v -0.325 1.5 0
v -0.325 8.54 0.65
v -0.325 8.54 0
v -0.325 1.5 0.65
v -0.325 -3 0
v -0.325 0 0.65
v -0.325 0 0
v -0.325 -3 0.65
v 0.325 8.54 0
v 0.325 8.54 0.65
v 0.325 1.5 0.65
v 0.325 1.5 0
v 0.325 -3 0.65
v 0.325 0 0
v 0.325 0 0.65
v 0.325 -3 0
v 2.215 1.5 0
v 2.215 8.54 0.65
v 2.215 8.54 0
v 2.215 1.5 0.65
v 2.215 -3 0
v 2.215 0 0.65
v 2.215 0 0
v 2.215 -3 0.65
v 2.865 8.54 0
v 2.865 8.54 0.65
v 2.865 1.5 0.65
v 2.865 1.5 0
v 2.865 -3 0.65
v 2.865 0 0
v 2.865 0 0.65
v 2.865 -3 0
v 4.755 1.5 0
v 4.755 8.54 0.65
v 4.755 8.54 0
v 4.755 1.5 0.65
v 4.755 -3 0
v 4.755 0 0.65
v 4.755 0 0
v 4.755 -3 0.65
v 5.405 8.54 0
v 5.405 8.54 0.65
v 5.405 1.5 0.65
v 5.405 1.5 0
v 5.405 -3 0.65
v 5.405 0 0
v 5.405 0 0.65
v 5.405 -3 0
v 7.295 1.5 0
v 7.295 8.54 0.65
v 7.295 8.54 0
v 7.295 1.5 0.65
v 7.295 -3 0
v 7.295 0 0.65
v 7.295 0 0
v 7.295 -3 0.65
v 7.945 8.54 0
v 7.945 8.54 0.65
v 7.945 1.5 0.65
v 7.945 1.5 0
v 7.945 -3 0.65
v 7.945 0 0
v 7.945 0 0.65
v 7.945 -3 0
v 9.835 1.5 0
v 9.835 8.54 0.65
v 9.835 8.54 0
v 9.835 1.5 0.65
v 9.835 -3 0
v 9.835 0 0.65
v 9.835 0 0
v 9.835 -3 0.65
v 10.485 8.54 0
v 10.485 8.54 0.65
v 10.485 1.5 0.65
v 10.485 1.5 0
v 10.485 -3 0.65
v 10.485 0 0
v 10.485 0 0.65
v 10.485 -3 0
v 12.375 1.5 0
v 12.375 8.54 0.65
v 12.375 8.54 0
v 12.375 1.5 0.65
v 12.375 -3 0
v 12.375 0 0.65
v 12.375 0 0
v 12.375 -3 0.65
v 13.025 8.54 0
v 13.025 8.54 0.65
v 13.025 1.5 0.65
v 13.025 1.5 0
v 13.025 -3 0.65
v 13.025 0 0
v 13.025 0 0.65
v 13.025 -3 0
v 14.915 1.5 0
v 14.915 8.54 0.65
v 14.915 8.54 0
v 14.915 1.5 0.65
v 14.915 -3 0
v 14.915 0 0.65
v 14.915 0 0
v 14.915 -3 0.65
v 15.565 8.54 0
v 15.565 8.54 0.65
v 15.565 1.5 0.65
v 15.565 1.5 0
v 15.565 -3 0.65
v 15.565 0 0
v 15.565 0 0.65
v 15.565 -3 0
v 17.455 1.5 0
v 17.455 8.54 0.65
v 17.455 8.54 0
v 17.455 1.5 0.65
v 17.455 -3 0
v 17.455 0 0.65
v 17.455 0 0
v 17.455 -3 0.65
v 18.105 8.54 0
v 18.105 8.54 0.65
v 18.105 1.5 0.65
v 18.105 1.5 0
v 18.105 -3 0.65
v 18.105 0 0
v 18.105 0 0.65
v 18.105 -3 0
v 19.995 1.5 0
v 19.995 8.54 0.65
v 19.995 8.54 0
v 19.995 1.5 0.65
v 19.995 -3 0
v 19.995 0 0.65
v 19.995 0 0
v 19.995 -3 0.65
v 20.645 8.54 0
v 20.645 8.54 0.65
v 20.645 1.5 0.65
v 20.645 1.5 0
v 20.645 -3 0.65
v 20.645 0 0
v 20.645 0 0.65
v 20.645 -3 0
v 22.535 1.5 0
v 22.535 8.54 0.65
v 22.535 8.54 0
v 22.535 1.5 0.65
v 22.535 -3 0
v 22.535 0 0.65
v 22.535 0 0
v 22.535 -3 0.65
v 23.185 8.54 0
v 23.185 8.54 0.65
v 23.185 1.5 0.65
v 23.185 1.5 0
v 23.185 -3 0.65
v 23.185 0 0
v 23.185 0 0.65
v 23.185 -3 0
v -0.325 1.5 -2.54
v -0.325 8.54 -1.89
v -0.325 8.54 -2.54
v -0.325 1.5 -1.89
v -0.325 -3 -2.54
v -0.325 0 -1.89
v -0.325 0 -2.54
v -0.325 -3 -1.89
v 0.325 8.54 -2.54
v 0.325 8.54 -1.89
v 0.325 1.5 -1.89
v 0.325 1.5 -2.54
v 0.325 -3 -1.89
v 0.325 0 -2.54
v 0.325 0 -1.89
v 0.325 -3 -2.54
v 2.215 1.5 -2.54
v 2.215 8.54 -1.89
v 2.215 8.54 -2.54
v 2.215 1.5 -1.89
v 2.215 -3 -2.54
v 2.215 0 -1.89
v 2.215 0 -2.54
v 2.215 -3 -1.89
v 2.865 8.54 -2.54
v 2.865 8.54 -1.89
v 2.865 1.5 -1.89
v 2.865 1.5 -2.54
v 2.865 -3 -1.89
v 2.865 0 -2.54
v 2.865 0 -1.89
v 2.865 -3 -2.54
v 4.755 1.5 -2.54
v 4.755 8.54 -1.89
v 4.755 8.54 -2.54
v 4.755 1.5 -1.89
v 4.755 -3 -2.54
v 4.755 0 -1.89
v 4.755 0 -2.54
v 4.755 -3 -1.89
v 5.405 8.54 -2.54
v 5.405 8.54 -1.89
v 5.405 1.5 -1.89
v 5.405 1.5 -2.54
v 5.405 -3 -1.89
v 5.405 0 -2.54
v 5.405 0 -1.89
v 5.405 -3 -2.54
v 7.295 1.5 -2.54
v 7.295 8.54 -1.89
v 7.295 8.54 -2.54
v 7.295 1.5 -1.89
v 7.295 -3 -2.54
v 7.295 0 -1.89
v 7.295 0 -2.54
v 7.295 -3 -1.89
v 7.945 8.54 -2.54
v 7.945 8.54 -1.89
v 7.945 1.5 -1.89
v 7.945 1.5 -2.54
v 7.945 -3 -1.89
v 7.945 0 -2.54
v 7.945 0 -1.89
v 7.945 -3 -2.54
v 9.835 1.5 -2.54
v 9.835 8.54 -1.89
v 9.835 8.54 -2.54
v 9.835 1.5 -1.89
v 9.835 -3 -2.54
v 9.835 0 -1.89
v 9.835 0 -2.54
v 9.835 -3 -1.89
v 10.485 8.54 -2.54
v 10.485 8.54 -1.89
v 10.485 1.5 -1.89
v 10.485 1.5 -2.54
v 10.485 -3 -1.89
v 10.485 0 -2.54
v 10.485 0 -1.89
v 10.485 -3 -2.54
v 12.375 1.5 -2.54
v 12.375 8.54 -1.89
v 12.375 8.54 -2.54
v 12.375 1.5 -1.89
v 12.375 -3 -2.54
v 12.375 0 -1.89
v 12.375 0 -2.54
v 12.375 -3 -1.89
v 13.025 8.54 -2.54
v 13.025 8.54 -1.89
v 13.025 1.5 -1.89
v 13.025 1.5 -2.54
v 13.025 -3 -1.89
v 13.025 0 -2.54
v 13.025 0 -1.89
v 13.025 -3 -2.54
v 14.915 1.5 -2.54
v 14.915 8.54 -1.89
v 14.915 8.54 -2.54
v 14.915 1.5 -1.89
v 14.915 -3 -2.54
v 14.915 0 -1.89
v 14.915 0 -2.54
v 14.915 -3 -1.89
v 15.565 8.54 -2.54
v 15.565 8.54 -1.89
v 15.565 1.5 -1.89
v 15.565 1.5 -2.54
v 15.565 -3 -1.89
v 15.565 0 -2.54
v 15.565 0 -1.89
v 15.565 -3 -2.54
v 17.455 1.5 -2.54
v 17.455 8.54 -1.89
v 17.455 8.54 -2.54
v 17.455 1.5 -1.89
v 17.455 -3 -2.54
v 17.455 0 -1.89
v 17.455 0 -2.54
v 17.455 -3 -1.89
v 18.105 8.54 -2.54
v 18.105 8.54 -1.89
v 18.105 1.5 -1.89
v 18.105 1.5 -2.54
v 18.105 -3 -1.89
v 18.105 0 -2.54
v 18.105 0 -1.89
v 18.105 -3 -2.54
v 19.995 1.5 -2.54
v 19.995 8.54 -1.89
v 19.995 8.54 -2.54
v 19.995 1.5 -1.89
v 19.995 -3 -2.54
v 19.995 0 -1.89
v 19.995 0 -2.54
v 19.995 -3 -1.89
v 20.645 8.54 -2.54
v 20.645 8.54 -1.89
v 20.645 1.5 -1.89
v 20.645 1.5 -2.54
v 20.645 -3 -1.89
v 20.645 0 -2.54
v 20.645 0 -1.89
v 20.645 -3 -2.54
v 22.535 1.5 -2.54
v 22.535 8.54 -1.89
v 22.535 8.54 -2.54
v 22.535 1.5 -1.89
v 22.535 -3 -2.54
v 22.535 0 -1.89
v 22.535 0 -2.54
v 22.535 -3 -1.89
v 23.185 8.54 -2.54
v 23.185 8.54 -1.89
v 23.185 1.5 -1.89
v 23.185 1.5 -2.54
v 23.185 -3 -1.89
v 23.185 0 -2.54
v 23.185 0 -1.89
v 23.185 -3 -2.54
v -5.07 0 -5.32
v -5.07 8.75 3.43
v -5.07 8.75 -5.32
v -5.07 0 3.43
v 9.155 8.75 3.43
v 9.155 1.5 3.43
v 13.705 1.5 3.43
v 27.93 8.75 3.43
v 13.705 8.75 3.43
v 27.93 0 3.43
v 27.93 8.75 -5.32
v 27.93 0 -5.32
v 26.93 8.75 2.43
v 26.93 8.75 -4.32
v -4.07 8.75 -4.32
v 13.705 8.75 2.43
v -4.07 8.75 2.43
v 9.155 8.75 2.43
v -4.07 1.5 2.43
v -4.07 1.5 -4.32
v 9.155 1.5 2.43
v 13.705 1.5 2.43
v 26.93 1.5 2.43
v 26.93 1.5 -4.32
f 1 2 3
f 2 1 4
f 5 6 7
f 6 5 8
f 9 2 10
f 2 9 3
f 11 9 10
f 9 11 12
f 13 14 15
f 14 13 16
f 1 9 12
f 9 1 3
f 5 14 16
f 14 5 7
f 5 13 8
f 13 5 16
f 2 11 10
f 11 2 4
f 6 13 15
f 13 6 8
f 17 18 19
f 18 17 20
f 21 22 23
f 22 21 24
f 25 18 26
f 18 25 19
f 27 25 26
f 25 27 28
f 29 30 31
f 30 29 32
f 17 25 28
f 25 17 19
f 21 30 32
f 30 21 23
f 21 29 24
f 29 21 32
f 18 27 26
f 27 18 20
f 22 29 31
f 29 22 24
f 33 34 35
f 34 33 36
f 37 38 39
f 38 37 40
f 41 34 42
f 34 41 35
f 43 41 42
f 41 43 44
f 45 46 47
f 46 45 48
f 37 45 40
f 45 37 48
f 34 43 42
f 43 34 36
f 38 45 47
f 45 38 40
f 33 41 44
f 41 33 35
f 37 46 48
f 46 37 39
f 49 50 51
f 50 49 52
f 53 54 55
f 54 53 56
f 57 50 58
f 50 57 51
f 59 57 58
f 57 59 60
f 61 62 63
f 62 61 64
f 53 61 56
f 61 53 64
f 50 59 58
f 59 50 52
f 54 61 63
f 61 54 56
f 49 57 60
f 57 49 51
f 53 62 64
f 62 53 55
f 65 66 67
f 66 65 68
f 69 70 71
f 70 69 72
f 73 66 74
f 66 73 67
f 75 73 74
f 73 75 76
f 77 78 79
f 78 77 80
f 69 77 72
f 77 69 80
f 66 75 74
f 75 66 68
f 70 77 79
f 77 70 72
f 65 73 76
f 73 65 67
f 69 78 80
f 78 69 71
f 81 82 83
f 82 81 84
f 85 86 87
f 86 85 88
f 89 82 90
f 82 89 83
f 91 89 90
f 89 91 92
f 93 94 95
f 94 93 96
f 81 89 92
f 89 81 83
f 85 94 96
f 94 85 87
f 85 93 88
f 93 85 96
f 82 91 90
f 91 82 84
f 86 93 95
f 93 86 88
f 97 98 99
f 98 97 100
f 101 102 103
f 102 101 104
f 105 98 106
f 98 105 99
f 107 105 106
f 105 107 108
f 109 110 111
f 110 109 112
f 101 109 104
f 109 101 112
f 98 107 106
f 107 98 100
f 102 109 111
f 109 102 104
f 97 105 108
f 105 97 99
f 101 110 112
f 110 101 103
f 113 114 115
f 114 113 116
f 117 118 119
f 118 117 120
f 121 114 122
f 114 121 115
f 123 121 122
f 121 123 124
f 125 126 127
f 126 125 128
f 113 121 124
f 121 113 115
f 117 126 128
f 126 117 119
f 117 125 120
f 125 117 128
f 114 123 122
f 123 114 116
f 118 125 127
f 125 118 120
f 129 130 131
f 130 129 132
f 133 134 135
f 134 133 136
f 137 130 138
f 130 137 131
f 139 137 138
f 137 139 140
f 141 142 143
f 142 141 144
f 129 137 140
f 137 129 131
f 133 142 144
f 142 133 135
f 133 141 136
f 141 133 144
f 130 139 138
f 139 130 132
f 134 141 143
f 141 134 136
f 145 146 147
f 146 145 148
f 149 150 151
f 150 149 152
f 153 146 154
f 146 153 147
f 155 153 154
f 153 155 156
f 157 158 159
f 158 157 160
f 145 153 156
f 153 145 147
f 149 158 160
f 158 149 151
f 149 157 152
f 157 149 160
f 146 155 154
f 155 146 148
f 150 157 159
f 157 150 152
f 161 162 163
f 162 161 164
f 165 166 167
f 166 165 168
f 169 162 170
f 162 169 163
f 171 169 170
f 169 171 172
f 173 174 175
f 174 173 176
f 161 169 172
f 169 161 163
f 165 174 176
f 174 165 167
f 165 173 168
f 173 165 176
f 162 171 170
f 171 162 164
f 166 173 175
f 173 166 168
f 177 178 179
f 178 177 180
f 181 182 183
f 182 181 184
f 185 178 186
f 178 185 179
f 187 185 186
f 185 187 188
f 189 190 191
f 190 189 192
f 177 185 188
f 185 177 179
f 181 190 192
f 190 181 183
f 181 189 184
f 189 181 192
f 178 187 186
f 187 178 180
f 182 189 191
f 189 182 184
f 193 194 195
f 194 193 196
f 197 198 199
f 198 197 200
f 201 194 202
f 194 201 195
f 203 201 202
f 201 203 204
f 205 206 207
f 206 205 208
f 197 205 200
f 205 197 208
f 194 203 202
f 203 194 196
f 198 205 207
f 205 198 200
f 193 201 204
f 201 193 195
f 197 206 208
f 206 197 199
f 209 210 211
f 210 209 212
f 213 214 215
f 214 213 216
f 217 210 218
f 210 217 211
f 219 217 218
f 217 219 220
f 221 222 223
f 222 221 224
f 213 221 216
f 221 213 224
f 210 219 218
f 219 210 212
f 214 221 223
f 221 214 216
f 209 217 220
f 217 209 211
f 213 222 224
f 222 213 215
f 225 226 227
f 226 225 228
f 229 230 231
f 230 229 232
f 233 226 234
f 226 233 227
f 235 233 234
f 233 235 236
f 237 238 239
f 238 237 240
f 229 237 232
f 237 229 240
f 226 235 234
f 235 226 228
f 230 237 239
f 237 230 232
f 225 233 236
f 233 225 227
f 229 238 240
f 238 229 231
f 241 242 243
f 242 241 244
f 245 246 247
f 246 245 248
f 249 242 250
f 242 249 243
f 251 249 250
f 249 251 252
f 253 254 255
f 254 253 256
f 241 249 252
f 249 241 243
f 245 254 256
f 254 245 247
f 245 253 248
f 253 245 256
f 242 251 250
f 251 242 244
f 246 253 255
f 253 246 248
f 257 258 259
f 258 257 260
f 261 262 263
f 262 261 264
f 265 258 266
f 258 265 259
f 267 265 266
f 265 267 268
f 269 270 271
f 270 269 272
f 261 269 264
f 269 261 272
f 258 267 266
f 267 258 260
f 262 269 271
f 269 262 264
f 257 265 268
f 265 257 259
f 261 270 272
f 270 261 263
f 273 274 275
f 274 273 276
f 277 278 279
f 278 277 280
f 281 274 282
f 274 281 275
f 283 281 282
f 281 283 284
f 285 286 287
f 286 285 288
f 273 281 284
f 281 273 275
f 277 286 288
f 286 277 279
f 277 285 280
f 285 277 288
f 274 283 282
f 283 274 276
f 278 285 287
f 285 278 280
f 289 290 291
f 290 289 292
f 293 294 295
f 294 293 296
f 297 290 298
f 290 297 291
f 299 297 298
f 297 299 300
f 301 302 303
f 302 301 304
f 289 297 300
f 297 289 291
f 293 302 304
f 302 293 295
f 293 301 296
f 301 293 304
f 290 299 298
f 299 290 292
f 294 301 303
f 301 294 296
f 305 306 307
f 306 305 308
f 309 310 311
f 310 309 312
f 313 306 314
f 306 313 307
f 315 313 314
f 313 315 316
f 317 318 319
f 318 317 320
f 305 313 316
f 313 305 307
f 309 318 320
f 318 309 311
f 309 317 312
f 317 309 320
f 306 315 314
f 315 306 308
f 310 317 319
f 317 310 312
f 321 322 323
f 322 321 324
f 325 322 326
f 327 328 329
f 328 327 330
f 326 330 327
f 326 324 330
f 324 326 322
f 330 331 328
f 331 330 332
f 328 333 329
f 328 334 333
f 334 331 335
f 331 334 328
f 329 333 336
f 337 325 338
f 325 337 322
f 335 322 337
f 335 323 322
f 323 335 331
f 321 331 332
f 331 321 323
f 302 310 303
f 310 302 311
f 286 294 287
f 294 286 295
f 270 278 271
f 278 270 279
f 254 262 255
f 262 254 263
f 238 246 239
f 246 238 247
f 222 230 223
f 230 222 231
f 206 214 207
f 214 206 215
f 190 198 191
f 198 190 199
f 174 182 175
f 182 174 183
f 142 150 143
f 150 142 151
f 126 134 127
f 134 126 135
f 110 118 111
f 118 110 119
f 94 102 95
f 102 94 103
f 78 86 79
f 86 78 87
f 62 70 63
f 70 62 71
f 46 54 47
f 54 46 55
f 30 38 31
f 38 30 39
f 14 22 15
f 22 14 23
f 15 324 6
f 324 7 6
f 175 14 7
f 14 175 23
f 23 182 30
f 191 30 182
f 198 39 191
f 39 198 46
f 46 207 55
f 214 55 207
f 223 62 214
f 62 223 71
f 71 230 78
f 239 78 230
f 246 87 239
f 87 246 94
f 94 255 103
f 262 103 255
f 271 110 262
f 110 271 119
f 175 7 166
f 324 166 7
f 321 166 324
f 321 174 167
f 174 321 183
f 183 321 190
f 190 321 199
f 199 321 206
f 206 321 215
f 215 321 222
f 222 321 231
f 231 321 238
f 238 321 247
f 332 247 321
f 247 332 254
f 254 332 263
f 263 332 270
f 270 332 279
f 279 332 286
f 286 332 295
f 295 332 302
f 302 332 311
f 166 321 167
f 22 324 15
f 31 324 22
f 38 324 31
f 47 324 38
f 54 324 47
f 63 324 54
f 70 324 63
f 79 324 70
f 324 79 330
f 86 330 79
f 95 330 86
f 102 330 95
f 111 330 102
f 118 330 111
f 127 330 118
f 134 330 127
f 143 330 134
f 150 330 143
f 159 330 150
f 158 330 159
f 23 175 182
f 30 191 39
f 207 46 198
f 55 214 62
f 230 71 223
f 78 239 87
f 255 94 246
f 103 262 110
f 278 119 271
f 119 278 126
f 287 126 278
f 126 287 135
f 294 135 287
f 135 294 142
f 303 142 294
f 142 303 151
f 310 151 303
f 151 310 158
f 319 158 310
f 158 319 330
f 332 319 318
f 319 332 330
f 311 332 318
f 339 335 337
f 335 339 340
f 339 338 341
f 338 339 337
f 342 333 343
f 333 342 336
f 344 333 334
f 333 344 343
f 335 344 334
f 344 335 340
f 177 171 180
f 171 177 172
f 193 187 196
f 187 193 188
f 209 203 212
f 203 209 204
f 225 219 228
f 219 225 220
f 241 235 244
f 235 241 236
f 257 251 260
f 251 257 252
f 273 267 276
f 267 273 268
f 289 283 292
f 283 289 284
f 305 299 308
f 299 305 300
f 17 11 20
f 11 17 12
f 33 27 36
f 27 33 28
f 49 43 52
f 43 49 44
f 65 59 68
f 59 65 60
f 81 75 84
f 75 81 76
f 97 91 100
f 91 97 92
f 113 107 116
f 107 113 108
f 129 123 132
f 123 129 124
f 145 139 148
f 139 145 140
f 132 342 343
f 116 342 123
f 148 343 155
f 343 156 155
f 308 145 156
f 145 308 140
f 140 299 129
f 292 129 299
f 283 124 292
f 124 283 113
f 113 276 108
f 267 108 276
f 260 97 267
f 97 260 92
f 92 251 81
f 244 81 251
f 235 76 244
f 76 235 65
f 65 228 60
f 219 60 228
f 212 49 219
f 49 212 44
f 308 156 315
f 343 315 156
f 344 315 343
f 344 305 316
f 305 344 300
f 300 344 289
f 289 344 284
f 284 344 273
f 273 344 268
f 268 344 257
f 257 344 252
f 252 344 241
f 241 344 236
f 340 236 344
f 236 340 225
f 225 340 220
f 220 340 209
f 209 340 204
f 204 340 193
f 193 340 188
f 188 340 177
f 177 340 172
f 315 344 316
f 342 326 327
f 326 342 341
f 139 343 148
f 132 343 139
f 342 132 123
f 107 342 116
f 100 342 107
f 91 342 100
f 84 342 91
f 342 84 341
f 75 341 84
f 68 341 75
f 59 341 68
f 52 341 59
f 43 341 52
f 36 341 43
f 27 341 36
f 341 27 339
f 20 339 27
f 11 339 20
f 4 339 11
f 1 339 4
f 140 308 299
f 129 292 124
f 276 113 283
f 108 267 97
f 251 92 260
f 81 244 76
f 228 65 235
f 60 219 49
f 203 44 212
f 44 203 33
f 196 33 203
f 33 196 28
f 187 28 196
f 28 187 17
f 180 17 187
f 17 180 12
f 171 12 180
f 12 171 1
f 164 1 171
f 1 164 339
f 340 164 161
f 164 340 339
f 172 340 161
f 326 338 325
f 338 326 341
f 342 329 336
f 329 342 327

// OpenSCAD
module pin()
{
	translate([-0.325,-0.325,-3])
		cube([0.65,0.65,11.54]);
    //linear_extrude(2.54)
    //    polygon(points=[[-0.97,-1.27],[0.97,-1.27],[1.27,-0.97],[1.27,0.97],[0.97,1.27],[-0.97,1.27],[-1.27,0.97],[-1.27,-0.97]], paths=[[0,1,2,3,4,5,6,7]]);
};

module pins_array(_cnt, _distance)
{
	if (_cnt>0)
	{
		for (_i = [0:_cnt-1])
		{
			translate([_distance*_i,-0.65/2,0])
				pin();
		}
	}
}


union()
{   
    // Top array of pins
    rotate(270, [1, 0, 0])
        pins_array(10,2.54);
    // Bottom array of pins
    translate([0,0,-2.54])
        rotate(270, [1, 0, 0])
            pins_array(10,2.54);
    
    // Case with notch
    difference()
    {
        // Case
        translate([-33/2+2.54*4.5,0,-8.75/2-2.54/2+0.65/2])
            difference()
            {
                cube([33,8.75,8.75]);
            
                translate([1,1.5,1])
                    cube([31,7.5,6.75]);
            }
        translate([2.54*4.5-4.55/2,1.5,1.6])
            cube([4.55,8,2]);
    }
};
